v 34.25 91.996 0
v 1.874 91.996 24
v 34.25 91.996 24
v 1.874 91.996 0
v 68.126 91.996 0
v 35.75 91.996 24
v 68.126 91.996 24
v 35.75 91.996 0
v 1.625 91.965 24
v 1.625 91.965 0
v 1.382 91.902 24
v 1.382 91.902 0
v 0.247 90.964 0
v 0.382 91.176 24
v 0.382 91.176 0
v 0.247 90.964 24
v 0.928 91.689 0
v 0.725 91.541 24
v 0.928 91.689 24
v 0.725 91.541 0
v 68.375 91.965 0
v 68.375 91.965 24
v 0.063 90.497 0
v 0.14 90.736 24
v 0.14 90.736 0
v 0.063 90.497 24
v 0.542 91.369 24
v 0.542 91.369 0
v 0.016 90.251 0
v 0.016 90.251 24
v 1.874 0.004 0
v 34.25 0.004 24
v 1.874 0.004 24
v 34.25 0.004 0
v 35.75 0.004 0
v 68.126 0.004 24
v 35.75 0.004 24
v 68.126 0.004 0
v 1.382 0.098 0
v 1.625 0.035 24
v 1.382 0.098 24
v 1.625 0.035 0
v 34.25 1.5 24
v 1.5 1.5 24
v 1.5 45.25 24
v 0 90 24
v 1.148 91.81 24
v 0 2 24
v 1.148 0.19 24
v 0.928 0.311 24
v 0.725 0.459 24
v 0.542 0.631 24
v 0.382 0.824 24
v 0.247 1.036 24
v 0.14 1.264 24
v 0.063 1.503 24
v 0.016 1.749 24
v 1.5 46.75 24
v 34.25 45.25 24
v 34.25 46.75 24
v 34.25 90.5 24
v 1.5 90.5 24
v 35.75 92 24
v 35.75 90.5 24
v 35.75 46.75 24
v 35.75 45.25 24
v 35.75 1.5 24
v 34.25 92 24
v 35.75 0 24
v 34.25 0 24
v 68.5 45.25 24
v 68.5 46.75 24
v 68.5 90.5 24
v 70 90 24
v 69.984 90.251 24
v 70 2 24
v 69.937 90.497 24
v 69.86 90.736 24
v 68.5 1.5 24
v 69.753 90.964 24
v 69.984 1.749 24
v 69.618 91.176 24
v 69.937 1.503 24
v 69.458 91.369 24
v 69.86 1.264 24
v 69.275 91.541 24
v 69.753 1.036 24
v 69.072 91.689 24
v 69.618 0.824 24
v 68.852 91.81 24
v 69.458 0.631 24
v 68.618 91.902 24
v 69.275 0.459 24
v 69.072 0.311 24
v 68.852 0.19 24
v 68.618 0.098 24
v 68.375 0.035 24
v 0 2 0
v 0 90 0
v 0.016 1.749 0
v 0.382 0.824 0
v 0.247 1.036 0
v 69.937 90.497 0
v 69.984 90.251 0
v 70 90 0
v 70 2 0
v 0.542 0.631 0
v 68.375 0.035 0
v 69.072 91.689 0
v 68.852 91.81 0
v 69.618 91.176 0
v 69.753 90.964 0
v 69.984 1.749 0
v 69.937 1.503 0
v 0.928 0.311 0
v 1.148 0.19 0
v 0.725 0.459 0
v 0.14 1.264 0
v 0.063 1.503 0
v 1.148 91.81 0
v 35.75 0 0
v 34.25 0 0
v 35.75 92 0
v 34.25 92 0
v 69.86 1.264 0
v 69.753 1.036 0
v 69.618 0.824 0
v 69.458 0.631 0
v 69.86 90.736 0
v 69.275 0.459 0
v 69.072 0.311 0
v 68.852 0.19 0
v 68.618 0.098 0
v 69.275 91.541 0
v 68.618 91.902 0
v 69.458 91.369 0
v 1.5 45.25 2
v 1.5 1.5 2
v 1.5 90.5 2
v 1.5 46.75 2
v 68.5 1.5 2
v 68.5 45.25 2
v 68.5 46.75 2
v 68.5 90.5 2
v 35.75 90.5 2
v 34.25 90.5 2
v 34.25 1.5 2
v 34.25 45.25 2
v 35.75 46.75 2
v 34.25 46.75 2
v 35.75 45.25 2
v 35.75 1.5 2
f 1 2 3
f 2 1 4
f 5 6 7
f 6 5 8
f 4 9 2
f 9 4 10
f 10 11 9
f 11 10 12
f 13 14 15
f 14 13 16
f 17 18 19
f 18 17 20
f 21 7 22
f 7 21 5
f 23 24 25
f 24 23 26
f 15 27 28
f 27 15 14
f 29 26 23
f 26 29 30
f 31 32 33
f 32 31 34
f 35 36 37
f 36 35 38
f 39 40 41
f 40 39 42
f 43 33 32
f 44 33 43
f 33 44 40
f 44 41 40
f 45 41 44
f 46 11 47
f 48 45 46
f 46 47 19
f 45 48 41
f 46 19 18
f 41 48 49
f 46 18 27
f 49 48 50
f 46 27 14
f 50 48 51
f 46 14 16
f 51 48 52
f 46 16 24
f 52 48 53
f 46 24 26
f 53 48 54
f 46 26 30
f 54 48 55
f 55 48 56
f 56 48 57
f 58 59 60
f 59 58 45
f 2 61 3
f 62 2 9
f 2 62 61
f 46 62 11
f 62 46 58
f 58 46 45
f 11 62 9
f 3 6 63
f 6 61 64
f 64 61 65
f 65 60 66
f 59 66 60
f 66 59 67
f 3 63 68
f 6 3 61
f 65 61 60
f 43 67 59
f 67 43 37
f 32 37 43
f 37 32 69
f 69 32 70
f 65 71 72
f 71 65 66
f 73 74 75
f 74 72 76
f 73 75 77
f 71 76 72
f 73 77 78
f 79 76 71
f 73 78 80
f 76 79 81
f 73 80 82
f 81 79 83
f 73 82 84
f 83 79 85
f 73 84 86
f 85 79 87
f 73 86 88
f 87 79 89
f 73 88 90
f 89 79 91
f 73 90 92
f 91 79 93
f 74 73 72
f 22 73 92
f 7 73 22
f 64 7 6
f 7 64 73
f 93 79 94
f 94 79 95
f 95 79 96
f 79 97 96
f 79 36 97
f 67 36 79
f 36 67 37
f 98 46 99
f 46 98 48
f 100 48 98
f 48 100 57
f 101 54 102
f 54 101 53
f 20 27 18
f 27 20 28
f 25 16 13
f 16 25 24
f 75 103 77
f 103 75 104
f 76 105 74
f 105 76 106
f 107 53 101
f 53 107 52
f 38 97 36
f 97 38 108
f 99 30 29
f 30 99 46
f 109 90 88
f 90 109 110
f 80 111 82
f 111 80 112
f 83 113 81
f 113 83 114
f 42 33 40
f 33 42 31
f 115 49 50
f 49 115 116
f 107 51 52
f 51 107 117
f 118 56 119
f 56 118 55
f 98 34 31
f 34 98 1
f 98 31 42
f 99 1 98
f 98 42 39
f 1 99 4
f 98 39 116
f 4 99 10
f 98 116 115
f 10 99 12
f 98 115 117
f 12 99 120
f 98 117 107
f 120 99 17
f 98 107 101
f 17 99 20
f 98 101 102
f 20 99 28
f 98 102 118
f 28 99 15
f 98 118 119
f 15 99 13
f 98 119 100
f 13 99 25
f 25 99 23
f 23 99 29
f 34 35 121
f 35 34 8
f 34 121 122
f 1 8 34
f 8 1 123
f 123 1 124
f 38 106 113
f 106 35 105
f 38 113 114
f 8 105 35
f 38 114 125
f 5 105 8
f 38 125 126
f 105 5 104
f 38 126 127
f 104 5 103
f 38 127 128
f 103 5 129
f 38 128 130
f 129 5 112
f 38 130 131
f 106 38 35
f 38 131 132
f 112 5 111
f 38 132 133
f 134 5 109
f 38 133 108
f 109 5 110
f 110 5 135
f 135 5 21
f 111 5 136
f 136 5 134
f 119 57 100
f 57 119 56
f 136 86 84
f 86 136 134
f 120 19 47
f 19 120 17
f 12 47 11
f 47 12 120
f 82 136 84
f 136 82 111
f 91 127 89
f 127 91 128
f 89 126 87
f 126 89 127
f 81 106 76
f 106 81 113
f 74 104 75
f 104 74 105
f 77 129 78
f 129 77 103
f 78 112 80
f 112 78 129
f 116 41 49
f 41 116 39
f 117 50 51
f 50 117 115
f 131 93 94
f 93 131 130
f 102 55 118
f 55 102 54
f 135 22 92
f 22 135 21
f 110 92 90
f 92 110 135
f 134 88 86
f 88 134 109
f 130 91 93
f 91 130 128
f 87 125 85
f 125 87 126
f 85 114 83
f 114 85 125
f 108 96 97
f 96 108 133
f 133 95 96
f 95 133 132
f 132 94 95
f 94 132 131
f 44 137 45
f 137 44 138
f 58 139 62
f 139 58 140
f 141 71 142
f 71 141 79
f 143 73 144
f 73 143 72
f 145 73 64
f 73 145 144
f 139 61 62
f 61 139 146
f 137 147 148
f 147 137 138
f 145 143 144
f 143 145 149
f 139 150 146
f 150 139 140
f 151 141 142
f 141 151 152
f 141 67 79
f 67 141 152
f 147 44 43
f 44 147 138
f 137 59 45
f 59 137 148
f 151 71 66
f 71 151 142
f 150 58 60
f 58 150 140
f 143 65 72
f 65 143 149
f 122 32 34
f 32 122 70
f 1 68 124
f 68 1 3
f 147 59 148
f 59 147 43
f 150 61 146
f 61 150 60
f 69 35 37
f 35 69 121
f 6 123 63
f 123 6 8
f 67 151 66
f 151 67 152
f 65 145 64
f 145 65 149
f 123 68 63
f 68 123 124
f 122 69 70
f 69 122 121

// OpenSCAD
length = 70;
width = 92;
height = 24;
floorThickness = 2;
wallThickness = 1.5;

union() {
    difference() {    
        $fn=50;
        minkowski()
        {
          translate([2,2,0])
            cube([length-4, width-4, height - 1]);
          cylinder(r=2,h=1);
        }
        
        //cube([length, width, height]);
        translate([wallThickness, wallThickness, floorThickness])
            cube([length - wallThickness * 2, width - wallThickness * 2, height - floorThickness]);
    }
    translate([0, width/2 - wallThickness/2, 0])
        cube([length, wallThickness, height]);
    translate([length/2 - wallThickness/2, 0, 0])
        cube([wallThickness, width, height]);
}
